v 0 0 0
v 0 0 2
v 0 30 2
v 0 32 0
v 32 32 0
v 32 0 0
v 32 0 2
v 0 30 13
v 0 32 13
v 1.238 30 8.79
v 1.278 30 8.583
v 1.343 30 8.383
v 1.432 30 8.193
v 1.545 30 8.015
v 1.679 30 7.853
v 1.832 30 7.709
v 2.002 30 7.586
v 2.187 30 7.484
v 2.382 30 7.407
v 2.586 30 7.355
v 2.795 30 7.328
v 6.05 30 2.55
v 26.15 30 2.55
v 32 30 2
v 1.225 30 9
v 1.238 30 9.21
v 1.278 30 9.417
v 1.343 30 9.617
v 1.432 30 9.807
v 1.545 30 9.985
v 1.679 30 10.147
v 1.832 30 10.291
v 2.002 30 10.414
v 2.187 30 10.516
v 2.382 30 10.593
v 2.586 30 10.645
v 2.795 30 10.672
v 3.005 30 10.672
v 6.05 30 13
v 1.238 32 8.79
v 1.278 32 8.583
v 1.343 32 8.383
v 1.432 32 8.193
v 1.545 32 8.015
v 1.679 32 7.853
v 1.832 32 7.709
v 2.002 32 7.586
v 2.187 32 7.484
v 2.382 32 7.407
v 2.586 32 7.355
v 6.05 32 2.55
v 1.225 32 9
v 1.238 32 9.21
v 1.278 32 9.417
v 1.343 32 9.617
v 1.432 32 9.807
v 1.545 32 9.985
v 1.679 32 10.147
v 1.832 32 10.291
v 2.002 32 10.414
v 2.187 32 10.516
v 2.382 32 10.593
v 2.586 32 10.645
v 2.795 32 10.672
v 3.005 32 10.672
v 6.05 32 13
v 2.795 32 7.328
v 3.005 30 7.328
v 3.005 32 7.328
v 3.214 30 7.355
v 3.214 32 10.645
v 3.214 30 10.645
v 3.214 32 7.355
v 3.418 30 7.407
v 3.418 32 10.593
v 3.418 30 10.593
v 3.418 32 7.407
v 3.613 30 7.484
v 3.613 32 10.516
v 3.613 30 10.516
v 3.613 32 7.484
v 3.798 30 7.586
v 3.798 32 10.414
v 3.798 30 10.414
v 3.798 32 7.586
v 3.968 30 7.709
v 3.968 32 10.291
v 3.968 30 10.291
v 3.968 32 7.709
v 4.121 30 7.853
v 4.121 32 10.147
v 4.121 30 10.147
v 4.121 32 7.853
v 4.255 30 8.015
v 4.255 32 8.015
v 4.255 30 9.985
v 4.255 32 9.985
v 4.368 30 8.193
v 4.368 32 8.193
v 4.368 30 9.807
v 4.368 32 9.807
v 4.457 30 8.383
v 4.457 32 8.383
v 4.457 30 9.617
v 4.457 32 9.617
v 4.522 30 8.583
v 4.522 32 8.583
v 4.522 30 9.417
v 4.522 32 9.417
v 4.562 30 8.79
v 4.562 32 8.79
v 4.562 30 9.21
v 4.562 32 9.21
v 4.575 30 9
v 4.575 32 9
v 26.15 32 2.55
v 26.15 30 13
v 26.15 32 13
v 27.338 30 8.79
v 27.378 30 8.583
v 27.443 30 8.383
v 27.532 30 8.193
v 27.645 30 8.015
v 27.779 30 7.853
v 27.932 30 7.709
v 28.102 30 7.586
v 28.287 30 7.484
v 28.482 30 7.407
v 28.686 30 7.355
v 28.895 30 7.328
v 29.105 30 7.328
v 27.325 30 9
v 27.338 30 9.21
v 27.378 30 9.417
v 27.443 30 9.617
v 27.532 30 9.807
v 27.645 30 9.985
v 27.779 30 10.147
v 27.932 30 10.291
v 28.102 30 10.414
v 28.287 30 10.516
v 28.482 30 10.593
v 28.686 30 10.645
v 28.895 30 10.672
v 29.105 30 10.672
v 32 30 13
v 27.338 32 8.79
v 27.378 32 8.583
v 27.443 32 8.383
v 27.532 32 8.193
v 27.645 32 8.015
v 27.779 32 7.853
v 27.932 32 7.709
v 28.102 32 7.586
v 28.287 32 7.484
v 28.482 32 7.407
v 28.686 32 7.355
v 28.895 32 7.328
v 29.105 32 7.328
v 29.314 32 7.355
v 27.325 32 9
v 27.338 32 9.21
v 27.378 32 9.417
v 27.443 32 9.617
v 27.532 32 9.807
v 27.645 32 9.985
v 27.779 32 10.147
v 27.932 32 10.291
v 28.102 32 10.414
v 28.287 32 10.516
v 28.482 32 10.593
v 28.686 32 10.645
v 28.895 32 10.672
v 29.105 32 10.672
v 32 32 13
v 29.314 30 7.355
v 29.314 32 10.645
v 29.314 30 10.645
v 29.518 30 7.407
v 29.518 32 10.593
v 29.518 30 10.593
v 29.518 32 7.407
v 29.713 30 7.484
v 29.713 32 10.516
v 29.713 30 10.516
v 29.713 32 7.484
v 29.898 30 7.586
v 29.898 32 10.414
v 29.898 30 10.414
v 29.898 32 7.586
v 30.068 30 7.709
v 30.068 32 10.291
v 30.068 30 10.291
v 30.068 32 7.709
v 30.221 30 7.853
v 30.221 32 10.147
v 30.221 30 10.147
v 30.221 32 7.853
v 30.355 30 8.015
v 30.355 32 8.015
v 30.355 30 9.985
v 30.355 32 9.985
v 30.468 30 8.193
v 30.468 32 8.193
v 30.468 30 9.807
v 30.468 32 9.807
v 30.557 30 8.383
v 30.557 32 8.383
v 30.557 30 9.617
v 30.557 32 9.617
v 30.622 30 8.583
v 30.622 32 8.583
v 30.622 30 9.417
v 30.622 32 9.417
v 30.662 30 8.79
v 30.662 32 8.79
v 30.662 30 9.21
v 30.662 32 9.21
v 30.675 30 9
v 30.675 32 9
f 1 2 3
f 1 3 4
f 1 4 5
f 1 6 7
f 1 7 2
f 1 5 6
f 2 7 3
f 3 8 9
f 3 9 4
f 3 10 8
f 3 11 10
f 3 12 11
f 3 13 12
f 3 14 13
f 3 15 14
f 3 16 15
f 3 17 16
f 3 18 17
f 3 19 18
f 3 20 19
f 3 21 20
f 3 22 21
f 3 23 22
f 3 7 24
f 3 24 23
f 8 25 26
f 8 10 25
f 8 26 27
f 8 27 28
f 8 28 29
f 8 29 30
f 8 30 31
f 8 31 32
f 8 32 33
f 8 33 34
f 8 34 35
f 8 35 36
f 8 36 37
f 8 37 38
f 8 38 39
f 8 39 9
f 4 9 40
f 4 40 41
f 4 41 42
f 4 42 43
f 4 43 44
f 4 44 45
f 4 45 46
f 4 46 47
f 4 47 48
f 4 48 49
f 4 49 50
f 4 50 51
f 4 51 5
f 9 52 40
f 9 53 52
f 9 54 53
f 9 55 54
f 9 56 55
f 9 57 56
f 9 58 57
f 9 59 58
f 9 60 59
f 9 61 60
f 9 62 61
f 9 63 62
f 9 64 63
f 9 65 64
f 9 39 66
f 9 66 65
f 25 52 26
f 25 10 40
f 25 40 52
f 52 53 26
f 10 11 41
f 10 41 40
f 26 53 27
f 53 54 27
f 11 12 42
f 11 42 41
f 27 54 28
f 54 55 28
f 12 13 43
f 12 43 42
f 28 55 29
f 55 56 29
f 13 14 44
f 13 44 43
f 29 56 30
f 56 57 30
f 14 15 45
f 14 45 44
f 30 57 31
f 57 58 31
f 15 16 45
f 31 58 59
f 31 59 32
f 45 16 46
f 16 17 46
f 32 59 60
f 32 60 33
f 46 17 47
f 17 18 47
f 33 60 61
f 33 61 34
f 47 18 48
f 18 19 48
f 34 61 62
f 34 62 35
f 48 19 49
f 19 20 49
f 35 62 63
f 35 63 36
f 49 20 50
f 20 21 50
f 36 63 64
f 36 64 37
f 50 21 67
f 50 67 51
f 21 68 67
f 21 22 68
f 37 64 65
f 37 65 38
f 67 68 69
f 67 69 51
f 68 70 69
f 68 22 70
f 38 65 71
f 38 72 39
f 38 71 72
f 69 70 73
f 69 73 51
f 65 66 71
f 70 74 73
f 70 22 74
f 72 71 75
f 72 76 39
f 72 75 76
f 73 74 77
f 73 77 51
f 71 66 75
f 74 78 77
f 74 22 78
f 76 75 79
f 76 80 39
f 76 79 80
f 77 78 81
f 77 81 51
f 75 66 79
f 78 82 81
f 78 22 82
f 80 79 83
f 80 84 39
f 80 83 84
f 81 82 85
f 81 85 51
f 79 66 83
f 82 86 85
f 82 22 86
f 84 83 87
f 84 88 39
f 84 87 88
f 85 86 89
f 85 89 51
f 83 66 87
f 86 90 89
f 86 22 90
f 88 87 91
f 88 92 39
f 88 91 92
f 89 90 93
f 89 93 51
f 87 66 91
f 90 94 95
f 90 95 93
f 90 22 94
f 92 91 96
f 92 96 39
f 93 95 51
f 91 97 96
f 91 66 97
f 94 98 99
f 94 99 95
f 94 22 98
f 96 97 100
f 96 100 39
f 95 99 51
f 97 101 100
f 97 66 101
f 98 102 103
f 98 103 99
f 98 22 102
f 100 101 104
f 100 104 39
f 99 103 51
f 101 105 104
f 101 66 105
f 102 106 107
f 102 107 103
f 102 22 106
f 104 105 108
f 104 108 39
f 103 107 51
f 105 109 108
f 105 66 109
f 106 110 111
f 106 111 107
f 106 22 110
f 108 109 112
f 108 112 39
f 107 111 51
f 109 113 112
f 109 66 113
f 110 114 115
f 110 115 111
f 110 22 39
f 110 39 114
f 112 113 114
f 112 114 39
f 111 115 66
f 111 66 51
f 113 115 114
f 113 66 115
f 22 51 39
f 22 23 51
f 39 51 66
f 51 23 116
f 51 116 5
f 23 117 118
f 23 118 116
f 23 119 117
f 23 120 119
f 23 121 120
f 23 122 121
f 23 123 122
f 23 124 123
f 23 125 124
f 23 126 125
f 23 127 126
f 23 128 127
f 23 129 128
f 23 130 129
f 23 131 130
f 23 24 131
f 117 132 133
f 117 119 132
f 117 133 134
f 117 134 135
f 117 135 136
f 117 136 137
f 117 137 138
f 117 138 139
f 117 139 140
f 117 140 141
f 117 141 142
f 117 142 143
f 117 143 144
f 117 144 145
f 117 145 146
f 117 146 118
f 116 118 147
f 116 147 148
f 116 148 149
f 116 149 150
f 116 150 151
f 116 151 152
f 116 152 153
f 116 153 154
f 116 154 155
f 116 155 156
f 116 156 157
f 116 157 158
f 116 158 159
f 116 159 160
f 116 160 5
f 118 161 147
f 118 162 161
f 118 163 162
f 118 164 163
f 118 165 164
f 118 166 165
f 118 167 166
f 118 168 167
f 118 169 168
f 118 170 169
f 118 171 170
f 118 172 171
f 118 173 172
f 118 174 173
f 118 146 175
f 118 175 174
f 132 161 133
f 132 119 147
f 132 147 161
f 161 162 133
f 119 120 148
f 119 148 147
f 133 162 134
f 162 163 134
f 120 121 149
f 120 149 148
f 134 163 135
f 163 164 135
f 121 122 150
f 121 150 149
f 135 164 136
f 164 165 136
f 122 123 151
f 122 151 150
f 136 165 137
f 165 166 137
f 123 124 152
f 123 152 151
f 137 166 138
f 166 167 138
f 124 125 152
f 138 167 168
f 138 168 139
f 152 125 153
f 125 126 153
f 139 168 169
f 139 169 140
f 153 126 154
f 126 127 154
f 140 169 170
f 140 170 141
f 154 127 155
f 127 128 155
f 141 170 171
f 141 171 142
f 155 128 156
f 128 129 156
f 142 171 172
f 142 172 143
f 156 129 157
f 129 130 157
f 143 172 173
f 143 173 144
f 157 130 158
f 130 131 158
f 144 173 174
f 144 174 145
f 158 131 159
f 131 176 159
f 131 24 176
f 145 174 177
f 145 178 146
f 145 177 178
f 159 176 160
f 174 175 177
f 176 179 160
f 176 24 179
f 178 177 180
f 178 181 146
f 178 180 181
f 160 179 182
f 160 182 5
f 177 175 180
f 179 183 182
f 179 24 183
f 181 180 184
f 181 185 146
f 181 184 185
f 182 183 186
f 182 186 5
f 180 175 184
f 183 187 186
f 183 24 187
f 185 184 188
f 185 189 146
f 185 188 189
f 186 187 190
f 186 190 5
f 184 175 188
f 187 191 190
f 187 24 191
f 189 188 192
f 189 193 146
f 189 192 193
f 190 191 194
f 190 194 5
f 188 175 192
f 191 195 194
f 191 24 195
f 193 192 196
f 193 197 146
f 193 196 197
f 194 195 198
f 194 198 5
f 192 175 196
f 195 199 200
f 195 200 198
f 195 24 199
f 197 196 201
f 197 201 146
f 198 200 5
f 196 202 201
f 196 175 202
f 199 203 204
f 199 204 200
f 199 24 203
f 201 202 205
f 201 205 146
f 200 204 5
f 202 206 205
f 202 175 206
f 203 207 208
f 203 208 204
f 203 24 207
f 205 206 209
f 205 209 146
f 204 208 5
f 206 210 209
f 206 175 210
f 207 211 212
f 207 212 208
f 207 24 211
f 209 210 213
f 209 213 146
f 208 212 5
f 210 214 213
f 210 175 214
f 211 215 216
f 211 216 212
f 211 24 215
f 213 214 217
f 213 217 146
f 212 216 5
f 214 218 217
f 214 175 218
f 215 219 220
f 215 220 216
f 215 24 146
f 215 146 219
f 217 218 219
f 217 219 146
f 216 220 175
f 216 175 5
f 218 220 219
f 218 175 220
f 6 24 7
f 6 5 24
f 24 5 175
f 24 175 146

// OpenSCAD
// Pi Eliminator Box 
// 2025-06-13 DMW
//==================================
include <MCAD/boxes.scad>
// include <BOLTS.scad>
//include </home/dave/.local/share/OpenSCAD/libraries/BOLTS.scad>
// Wall Thickness
wallTh = 1.0;

// Inner dimensions
iLen    = 25.0 - wallTh;
iWid    = 30.0 - wallTh;
iHt     = 30.0;

// Outer Dimensions 
oLen    = 32.0;
oWid    = 32.0;
//oHt  = 34.0 + (2 * wallTh);
oHt     = 13.0;

// Plug
pLen    = 20;
pWid    = 21.1;
pHt     = 10.1;

$fn = 50;

module boltholes()
{
    //ISO4014("M2", 5);
    //echo(get_dim(DIN125A_dims("M4"),"d1"));
    //echo(get_dim(dims,"d1"));
}

module main()
{
    // Main box
    difference()
    {
        // Outer dimensions
        cube([oLen, oWid, oHt], center = false);
        translate([2*wallTh, -(2*wallTh), wallTh+1])
        {
            // Inner region
            cube([oLen, oWid, oHt], center = false);
        }
//        translate([(pWid/2) - (6*wallTh), pLen - (2*wallTh), (pHt/2) + (2*wallTh)])
//        translate([(pWid/2) - (5*wallTh), pLen - (2*wallTh), (pHt/2) + (wallTh/2)])
        translate([((pWid/2) + 0.5) - (5*wallTh), pLen - (2*wallTh), (pHt/2)-2.5])
        {
            // Cutout for plug
            cube([pWid - 1.0, pLen, pHt+2], center = false);
        }
        translate([-1, -10, (2*wallTh)])
        {
            // Cutout for right side
            cube([4, pLen * 2, 15], center = false);
        }
        // Screw Holes
        translate([2.9, oLen, oHt/2 + 2.5 ])
        {
            rotate([90, 0, 0])
            {
                cylinder(h=10, d=3.35, center=true);
            }
        }
        translate([29.0, oLen, oHt/2 + 2.5 ])
        {
            rotate([90, 0, 0])
            {
                cylinder(h=10, d=3.35, center=true);
            }
        }
    }
}

main();
